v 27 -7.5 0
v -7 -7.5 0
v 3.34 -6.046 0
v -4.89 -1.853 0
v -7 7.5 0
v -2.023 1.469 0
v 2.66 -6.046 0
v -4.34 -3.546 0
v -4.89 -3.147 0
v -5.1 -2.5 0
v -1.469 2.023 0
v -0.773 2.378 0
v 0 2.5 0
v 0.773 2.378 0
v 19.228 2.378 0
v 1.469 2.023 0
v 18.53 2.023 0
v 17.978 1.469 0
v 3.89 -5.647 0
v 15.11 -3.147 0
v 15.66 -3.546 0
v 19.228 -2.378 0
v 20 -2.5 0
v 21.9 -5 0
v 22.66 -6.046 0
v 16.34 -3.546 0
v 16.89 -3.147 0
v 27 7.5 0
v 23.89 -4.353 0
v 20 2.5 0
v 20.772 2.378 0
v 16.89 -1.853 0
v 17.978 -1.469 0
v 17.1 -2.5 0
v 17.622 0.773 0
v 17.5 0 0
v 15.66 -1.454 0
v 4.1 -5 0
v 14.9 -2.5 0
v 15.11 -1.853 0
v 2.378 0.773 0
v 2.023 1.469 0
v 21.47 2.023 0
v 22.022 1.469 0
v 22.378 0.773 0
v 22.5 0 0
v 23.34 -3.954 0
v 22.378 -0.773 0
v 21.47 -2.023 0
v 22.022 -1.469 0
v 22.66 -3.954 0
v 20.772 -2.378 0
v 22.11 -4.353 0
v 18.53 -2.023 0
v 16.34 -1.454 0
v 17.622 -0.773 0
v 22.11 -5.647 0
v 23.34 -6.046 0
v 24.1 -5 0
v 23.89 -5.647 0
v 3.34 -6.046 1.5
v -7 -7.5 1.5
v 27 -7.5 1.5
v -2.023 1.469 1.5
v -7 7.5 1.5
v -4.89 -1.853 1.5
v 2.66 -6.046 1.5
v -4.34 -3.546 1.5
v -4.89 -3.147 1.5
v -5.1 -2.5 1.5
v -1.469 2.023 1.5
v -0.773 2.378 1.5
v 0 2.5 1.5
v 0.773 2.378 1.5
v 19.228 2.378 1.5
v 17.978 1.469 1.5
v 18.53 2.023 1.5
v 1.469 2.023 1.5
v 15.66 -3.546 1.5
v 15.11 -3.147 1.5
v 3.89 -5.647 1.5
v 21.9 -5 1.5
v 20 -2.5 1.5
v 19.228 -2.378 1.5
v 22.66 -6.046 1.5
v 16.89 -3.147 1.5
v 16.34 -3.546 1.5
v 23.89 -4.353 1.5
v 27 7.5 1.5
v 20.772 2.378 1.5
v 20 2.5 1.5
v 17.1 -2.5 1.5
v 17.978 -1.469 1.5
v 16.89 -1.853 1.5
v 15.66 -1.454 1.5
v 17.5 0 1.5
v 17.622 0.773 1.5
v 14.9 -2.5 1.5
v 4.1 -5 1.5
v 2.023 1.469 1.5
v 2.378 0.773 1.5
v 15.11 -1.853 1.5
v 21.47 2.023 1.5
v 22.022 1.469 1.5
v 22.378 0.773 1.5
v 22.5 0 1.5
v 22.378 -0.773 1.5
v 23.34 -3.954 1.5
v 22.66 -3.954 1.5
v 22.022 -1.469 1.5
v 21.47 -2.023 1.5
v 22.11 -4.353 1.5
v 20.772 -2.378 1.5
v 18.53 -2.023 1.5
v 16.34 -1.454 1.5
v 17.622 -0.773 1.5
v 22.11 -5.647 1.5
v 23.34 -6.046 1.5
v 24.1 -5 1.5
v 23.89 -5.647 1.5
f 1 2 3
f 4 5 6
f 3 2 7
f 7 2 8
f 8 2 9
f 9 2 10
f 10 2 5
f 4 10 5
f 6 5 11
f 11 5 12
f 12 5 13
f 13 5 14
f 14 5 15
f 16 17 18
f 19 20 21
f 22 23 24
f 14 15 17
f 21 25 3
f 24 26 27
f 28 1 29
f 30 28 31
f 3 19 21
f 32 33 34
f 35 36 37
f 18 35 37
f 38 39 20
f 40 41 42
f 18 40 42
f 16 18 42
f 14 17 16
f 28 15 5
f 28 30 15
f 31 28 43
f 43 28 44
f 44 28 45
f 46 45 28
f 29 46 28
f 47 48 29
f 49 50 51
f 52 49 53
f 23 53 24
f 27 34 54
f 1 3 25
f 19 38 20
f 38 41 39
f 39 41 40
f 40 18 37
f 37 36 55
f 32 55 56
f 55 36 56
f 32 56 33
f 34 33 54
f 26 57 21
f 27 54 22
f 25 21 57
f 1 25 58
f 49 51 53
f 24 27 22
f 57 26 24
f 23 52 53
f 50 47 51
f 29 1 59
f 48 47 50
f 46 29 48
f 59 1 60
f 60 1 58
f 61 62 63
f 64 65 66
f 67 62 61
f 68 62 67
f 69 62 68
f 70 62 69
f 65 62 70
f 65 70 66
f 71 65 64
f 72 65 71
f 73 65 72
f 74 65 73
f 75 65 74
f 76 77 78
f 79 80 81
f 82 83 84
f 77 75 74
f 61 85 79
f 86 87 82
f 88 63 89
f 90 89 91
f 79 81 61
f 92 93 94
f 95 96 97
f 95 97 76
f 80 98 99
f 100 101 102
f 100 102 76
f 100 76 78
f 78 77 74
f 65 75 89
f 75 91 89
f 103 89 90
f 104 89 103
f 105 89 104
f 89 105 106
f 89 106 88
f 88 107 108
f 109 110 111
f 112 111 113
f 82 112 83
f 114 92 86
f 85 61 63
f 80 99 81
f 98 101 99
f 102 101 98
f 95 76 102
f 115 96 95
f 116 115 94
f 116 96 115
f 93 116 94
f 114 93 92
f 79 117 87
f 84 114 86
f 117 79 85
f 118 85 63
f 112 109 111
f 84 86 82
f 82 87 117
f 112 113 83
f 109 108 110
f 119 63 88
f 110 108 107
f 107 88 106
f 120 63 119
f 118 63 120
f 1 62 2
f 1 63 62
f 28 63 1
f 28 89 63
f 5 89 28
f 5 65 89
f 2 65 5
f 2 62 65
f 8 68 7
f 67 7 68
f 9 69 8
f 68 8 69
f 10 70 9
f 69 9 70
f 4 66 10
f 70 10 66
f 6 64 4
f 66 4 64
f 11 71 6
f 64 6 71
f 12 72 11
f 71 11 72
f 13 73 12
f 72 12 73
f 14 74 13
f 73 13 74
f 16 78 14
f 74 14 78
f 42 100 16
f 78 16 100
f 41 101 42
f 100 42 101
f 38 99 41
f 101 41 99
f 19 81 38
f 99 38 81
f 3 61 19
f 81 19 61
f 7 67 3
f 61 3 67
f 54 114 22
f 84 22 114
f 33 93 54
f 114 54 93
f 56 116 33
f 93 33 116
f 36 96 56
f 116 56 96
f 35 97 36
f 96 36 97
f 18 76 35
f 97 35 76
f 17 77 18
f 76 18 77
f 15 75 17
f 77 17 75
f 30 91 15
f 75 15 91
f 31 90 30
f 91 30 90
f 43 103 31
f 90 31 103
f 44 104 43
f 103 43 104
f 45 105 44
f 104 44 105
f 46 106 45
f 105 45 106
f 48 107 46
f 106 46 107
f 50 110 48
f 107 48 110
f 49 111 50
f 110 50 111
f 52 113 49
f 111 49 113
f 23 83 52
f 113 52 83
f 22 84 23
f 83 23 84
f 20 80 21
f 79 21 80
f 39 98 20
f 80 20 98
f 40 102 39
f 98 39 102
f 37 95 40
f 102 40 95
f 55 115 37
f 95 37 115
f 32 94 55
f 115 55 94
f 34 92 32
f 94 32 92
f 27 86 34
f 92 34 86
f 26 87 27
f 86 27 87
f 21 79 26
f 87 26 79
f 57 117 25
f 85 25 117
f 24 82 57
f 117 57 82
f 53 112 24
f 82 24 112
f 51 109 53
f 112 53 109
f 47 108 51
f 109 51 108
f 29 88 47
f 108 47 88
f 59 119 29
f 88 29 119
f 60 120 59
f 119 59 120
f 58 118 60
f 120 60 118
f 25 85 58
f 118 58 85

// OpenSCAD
// A holder for Cherry MX style switches

module slot(radius=3, width=5) {
    translation = width / 2 - radius;
    hull() {
        translate([-translation, 0]) circle(radius);
        translate([translation, 0]) circle(radius);
    }
}

module switch_bottom_single() {
    // Various parameters. In reality, these are probably defined in some spec somewhere
    height = 14;
    width = 15;
    peg_radius = 2;
    pin_radius = 1;
    peg_tolerance = 0.5;
    pin1_location = [-4, -2.5];
    pin2_location = [3, -5];
    pin_tolerance = 0.1;

    difference(){
        square([height, width], center=true);
        hull(){
        circle(peg_radius + peg_tolerance, $fn=20);
        translate(pin1_location) circle(pin_radius + pin_tolerance,$fn=10);
        translate(pin2_location) circle(pin_radius + pin_tolerance, $fn=10);
        }
    }
}

module switch_bottom_multi() {
    // Various parameters. In reality, these are probably defined in some spec somewhere
    height = 14;
    width = 15;
    peg_radius = 2;
    pin_radius = 1;
    peg_tolerance = 0.5;
    pin1_location = [-4, -2.5];
    pin2_location = [3, -5];
    pin_tolerance = 0.1;

    difference(){
        square([height, width], center=true);{
        circle(peg_radius + peg_tolerance, $fn=20);
        translate(pin1_location) circle(pin_radius + pin_tolerance,$fn=10);
        translate(pin2_location) circle(pin_radius + pin_tolerance, $fn=10);}
    }
}

bottom_thickness = 1.5;
holder_width = 20;
holder_height = 20;
wall_height = 10;
holder_thickness = 1;
epsilon = 0.1;



linear_extrude(bottom_thickness) {
    union() {
        switch_bottom_single();
        translate([holder_width, 0]) switch_bottom_multi();
        // Join the shapes. This isn't great, but it works I guess
        translate([holder_width  / 2, 0]) square([14 / 2, 15], center=true);
    }

}
